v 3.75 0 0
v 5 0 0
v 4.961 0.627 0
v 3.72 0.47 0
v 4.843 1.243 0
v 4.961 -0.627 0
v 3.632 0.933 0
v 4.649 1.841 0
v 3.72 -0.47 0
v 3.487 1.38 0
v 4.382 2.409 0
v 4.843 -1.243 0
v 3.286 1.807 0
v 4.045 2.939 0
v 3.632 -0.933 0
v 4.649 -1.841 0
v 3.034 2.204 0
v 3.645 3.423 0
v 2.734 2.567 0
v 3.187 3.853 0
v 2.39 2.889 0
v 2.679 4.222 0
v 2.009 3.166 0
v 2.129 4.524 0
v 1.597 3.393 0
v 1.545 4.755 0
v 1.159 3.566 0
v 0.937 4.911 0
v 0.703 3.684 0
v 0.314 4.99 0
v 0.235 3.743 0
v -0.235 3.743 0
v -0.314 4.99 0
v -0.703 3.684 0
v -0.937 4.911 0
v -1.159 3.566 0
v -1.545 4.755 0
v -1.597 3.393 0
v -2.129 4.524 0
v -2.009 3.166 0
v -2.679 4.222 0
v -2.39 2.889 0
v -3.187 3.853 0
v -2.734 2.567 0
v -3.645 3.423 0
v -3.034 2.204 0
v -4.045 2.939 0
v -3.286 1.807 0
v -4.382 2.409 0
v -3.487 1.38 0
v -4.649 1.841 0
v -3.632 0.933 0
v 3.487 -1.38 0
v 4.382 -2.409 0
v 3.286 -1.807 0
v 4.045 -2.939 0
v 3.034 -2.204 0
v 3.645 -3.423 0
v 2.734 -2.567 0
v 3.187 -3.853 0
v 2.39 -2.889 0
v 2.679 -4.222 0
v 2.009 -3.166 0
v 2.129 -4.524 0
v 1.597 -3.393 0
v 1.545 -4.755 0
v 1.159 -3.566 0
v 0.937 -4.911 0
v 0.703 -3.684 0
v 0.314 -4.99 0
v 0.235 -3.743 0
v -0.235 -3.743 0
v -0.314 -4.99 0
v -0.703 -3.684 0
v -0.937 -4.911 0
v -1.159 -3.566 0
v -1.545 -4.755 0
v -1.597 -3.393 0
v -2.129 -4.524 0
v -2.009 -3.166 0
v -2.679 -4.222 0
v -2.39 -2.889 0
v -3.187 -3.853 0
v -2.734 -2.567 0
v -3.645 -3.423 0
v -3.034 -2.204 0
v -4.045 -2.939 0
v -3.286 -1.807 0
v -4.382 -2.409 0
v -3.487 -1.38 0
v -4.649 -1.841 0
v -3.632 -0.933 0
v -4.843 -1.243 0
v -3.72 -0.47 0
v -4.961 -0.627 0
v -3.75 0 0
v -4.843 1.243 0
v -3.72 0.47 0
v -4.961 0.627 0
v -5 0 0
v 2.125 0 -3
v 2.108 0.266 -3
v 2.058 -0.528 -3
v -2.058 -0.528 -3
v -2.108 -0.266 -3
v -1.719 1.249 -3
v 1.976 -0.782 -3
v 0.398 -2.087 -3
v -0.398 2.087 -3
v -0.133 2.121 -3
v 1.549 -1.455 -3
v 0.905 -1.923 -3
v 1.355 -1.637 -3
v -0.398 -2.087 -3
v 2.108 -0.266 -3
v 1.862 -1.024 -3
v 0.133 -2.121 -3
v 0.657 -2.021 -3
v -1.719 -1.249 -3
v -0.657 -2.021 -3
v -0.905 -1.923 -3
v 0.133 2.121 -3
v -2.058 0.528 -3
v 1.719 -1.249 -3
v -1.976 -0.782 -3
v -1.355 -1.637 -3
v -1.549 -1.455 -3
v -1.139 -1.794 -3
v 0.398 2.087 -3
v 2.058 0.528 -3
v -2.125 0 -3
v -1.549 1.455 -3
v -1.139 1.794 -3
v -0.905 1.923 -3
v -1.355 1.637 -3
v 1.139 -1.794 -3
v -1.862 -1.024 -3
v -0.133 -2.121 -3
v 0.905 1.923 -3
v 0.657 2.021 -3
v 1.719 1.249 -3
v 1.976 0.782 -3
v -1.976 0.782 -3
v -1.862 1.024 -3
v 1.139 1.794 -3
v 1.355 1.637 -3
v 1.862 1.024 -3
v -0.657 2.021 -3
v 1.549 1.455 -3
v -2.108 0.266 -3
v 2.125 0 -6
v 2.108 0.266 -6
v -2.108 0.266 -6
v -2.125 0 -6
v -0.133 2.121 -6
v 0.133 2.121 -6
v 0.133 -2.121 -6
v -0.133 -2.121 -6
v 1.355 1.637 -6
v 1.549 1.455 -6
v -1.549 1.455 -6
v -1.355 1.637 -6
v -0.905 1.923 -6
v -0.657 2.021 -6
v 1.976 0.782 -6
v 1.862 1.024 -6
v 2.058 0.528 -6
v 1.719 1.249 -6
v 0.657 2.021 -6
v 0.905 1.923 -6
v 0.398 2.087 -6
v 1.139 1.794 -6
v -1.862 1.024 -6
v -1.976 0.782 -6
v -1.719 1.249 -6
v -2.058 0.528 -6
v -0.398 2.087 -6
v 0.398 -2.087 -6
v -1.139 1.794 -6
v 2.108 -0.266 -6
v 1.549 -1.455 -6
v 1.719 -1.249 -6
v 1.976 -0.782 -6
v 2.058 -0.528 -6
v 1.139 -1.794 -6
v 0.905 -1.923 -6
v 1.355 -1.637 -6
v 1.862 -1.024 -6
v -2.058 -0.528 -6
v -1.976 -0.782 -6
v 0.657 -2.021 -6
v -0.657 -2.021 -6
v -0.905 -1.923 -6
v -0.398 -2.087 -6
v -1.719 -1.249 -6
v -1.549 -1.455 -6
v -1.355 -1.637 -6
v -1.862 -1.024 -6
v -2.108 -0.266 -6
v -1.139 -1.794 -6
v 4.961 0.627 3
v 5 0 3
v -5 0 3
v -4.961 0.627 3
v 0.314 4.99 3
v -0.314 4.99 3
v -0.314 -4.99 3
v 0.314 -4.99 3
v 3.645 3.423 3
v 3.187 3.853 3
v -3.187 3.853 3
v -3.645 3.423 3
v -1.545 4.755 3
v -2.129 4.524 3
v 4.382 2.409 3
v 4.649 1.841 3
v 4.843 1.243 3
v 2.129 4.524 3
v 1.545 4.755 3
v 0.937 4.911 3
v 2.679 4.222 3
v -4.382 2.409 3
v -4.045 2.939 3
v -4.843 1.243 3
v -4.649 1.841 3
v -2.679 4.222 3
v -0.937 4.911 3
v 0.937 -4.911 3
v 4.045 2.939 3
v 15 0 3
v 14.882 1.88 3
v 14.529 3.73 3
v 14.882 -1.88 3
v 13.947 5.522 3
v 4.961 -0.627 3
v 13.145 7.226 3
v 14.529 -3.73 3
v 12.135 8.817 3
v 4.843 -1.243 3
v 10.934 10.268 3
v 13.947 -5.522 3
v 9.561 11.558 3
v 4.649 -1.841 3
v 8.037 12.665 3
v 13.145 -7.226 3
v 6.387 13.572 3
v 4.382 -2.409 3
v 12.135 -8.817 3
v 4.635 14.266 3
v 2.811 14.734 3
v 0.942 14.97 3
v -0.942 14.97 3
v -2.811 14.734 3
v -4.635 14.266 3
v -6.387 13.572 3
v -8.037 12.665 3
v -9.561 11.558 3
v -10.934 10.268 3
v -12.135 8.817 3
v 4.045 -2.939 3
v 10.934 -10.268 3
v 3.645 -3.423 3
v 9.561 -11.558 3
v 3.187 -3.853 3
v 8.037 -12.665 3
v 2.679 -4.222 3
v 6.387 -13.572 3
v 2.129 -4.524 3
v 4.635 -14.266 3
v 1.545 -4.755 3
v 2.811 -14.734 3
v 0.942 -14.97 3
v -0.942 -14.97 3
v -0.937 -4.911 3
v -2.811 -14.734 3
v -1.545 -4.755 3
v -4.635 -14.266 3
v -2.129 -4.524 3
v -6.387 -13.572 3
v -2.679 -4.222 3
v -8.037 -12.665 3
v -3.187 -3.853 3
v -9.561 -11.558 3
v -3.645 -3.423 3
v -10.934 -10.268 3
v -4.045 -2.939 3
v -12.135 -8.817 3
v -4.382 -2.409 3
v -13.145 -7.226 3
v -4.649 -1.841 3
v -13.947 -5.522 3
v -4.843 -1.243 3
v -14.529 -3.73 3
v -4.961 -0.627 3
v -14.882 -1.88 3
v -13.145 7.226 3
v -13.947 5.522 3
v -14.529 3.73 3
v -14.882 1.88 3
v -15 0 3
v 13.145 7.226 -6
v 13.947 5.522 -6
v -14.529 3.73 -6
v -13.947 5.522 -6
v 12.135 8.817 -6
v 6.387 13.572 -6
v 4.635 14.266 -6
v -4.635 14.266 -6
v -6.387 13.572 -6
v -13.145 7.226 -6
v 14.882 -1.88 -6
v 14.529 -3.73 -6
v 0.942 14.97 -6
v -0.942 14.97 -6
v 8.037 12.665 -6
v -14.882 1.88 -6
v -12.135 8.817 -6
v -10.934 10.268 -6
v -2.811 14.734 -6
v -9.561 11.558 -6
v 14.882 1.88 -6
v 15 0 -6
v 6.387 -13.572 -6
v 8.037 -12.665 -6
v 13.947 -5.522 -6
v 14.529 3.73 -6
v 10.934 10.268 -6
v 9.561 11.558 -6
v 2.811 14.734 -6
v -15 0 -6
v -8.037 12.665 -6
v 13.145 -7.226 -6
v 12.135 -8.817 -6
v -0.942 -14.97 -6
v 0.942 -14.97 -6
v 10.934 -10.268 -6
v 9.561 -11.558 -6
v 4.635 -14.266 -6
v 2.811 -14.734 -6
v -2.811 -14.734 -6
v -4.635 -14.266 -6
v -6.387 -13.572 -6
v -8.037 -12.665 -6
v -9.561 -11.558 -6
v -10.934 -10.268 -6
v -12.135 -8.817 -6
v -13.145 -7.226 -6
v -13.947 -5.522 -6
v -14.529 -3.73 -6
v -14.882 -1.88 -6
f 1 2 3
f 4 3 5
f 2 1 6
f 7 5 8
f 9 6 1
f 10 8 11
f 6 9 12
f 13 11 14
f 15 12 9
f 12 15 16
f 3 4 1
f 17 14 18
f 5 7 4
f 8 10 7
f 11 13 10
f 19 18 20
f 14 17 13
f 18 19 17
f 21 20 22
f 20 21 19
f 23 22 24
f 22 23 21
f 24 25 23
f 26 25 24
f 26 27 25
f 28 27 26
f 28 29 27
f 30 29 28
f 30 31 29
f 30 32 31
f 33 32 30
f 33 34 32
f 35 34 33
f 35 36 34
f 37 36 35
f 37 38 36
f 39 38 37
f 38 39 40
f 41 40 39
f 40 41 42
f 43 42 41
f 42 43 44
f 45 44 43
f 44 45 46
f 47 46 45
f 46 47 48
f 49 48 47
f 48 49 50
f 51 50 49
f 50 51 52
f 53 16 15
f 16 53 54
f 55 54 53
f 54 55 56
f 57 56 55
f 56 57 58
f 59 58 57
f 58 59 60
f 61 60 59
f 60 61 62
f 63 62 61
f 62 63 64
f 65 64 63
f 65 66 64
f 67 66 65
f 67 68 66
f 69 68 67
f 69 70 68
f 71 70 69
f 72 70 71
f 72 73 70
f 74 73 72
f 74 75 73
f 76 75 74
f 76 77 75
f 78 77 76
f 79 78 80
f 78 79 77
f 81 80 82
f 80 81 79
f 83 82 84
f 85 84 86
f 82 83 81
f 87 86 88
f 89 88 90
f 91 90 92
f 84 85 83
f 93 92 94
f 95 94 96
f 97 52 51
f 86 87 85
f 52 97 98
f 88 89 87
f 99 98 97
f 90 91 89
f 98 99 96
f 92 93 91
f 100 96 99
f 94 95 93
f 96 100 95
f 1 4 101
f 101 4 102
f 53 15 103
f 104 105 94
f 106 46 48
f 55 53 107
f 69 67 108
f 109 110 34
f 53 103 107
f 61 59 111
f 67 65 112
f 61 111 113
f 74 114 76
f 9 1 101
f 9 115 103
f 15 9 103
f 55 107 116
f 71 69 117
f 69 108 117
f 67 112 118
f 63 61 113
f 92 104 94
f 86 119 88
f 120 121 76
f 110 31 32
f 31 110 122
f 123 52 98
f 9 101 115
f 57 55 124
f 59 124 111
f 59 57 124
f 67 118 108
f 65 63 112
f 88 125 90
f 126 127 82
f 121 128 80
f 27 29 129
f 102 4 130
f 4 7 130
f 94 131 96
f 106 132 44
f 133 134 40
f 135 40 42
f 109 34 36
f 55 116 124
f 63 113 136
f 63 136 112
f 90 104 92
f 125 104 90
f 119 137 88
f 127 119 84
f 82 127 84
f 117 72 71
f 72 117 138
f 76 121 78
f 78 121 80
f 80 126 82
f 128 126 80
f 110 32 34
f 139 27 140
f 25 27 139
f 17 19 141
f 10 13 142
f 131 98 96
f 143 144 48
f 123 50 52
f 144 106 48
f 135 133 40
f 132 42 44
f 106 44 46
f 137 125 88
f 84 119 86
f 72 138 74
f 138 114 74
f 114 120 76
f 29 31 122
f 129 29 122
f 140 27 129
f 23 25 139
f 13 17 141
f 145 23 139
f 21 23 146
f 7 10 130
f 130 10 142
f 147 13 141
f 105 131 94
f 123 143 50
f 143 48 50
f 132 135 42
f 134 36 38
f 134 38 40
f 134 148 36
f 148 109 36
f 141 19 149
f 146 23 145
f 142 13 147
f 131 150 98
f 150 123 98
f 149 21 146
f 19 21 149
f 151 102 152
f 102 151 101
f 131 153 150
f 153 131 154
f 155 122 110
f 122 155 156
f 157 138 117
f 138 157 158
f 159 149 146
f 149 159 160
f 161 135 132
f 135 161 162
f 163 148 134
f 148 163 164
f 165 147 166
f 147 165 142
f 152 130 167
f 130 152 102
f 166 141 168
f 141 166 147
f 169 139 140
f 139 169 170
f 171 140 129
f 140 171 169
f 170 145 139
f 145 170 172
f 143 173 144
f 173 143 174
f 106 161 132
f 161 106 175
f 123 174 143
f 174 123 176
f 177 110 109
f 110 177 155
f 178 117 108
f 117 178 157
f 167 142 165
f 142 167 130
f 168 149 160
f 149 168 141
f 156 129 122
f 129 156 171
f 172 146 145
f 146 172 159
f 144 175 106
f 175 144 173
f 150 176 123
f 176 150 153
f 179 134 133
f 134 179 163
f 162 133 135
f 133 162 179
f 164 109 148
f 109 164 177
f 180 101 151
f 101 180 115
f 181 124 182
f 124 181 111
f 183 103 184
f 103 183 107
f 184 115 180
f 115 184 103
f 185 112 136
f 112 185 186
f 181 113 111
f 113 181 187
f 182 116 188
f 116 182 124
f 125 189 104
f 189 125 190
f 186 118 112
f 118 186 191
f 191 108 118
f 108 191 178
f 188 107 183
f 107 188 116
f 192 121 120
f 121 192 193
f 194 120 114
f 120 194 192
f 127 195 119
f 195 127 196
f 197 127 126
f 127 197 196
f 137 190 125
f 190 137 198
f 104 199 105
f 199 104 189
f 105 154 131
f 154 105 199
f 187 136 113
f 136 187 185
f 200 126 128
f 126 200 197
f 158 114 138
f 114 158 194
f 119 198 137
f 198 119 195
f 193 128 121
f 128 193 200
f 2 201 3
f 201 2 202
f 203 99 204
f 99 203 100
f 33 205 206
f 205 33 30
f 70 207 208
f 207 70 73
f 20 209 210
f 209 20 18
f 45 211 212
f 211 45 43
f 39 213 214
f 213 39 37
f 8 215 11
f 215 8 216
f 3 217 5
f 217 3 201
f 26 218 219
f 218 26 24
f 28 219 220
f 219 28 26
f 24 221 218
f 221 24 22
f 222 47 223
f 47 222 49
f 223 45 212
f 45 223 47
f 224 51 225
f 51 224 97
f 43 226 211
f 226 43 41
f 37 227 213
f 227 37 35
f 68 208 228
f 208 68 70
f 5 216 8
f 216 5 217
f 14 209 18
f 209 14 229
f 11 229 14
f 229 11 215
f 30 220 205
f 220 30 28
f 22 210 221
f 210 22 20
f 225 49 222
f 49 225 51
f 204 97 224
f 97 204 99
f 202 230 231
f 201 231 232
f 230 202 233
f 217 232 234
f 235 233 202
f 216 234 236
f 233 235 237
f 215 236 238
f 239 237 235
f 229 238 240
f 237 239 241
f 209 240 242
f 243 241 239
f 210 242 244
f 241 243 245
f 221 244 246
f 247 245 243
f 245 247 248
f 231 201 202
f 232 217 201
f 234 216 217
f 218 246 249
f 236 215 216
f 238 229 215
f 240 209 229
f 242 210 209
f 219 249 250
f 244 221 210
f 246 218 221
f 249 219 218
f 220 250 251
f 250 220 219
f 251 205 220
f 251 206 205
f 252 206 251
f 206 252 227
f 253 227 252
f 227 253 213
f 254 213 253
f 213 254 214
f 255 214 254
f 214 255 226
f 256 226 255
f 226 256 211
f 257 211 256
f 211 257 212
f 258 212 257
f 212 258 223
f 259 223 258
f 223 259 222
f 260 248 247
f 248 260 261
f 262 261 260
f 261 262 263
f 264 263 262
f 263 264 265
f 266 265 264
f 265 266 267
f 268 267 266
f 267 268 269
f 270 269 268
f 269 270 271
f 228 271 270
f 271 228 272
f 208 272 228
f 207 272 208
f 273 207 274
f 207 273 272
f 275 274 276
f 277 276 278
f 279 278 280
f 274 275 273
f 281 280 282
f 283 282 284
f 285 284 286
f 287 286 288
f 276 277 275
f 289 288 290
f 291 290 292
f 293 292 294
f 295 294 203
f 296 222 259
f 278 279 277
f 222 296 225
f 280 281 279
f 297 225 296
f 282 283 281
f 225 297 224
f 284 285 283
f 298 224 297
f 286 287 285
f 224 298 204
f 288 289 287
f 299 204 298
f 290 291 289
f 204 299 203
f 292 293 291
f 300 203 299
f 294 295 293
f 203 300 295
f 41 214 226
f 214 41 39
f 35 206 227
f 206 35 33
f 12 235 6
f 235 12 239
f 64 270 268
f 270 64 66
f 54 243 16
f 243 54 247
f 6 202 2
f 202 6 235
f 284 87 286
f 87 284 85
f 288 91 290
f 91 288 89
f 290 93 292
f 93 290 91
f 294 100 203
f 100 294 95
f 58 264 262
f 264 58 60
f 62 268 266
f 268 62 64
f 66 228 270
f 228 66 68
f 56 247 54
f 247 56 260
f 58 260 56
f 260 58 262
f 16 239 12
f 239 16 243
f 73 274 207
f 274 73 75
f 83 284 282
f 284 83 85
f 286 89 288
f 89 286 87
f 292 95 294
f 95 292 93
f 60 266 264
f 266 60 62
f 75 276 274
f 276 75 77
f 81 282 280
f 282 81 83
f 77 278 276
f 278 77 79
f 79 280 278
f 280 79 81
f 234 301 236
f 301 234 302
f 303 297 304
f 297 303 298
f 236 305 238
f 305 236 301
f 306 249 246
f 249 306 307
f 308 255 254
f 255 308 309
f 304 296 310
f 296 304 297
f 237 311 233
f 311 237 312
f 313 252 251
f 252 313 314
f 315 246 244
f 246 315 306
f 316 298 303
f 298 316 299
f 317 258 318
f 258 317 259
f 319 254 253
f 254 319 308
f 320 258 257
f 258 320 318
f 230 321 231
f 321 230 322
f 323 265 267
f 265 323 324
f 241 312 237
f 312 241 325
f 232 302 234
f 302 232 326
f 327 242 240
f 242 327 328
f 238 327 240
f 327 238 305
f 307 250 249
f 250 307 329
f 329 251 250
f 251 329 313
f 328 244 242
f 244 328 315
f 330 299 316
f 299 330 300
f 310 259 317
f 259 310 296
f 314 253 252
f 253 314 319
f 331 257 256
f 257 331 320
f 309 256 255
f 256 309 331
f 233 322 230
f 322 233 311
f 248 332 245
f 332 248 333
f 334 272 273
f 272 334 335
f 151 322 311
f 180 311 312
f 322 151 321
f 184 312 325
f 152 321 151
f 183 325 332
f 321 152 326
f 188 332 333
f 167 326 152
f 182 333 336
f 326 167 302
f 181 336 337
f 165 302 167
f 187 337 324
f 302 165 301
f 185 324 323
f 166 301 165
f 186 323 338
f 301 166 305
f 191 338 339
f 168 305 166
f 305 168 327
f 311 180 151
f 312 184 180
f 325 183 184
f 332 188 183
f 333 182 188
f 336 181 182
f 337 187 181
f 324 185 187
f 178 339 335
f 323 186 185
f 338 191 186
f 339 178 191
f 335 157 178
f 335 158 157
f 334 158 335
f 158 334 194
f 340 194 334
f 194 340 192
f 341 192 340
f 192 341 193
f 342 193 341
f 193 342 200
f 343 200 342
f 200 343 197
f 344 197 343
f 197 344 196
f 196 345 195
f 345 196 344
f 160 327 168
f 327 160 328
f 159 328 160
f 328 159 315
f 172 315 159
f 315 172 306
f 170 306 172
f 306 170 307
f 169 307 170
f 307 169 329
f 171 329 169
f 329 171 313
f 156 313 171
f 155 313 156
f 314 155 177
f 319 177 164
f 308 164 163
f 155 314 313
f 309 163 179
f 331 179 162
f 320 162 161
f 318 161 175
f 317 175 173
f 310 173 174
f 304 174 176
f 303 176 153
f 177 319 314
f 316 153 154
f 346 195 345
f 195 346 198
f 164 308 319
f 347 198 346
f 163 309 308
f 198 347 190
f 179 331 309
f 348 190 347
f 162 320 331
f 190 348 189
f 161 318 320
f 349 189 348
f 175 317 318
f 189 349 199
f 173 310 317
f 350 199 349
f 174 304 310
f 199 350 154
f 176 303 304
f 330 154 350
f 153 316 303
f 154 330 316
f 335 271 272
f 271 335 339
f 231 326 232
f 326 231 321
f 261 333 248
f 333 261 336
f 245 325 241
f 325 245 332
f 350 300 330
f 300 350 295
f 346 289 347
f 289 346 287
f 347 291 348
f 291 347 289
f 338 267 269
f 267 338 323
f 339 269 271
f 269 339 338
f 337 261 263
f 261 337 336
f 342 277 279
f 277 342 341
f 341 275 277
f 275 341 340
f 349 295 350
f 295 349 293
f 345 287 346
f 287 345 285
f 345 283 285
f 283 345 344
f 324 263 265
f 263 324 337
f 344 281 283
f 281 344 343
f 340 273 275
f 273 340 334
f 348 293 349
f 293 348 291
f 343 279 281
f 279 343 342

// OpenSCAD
$fn = 50;


difference() {
	union() {
		translate(v = [0, 0, -6.0000000000]) {
			cylinder(h = 9, r = 15.0000000000);
		}
	}
	union() {
		translate(v = [0, 0, 0]) {
			rotate(a = [0, 0, 0]) {
				difference() {
					union() {
						translate(v = [0, 0, -9.0000000000]) {
							cylinder(h = 9, r = 2.0000000000);
						}
						translate(v = [0, 0, -3]) {
							cylinder(h = 3, r1 = 2.1250000000, r2 = 3.7500000000);
						}
						translate(v = [0, 0, -9.0000000000]) {
							cylinder(h = 9, r = 2.1250000000);
						}
						translate(v = [0, 0, -9.0000000000]) {
							cylinder(h = 9, r = 2.0000000000);
						}
					}
					union();
				}
			}
		}
		#cylinder(h = 3, r = 5.0000000000);
	}
}
